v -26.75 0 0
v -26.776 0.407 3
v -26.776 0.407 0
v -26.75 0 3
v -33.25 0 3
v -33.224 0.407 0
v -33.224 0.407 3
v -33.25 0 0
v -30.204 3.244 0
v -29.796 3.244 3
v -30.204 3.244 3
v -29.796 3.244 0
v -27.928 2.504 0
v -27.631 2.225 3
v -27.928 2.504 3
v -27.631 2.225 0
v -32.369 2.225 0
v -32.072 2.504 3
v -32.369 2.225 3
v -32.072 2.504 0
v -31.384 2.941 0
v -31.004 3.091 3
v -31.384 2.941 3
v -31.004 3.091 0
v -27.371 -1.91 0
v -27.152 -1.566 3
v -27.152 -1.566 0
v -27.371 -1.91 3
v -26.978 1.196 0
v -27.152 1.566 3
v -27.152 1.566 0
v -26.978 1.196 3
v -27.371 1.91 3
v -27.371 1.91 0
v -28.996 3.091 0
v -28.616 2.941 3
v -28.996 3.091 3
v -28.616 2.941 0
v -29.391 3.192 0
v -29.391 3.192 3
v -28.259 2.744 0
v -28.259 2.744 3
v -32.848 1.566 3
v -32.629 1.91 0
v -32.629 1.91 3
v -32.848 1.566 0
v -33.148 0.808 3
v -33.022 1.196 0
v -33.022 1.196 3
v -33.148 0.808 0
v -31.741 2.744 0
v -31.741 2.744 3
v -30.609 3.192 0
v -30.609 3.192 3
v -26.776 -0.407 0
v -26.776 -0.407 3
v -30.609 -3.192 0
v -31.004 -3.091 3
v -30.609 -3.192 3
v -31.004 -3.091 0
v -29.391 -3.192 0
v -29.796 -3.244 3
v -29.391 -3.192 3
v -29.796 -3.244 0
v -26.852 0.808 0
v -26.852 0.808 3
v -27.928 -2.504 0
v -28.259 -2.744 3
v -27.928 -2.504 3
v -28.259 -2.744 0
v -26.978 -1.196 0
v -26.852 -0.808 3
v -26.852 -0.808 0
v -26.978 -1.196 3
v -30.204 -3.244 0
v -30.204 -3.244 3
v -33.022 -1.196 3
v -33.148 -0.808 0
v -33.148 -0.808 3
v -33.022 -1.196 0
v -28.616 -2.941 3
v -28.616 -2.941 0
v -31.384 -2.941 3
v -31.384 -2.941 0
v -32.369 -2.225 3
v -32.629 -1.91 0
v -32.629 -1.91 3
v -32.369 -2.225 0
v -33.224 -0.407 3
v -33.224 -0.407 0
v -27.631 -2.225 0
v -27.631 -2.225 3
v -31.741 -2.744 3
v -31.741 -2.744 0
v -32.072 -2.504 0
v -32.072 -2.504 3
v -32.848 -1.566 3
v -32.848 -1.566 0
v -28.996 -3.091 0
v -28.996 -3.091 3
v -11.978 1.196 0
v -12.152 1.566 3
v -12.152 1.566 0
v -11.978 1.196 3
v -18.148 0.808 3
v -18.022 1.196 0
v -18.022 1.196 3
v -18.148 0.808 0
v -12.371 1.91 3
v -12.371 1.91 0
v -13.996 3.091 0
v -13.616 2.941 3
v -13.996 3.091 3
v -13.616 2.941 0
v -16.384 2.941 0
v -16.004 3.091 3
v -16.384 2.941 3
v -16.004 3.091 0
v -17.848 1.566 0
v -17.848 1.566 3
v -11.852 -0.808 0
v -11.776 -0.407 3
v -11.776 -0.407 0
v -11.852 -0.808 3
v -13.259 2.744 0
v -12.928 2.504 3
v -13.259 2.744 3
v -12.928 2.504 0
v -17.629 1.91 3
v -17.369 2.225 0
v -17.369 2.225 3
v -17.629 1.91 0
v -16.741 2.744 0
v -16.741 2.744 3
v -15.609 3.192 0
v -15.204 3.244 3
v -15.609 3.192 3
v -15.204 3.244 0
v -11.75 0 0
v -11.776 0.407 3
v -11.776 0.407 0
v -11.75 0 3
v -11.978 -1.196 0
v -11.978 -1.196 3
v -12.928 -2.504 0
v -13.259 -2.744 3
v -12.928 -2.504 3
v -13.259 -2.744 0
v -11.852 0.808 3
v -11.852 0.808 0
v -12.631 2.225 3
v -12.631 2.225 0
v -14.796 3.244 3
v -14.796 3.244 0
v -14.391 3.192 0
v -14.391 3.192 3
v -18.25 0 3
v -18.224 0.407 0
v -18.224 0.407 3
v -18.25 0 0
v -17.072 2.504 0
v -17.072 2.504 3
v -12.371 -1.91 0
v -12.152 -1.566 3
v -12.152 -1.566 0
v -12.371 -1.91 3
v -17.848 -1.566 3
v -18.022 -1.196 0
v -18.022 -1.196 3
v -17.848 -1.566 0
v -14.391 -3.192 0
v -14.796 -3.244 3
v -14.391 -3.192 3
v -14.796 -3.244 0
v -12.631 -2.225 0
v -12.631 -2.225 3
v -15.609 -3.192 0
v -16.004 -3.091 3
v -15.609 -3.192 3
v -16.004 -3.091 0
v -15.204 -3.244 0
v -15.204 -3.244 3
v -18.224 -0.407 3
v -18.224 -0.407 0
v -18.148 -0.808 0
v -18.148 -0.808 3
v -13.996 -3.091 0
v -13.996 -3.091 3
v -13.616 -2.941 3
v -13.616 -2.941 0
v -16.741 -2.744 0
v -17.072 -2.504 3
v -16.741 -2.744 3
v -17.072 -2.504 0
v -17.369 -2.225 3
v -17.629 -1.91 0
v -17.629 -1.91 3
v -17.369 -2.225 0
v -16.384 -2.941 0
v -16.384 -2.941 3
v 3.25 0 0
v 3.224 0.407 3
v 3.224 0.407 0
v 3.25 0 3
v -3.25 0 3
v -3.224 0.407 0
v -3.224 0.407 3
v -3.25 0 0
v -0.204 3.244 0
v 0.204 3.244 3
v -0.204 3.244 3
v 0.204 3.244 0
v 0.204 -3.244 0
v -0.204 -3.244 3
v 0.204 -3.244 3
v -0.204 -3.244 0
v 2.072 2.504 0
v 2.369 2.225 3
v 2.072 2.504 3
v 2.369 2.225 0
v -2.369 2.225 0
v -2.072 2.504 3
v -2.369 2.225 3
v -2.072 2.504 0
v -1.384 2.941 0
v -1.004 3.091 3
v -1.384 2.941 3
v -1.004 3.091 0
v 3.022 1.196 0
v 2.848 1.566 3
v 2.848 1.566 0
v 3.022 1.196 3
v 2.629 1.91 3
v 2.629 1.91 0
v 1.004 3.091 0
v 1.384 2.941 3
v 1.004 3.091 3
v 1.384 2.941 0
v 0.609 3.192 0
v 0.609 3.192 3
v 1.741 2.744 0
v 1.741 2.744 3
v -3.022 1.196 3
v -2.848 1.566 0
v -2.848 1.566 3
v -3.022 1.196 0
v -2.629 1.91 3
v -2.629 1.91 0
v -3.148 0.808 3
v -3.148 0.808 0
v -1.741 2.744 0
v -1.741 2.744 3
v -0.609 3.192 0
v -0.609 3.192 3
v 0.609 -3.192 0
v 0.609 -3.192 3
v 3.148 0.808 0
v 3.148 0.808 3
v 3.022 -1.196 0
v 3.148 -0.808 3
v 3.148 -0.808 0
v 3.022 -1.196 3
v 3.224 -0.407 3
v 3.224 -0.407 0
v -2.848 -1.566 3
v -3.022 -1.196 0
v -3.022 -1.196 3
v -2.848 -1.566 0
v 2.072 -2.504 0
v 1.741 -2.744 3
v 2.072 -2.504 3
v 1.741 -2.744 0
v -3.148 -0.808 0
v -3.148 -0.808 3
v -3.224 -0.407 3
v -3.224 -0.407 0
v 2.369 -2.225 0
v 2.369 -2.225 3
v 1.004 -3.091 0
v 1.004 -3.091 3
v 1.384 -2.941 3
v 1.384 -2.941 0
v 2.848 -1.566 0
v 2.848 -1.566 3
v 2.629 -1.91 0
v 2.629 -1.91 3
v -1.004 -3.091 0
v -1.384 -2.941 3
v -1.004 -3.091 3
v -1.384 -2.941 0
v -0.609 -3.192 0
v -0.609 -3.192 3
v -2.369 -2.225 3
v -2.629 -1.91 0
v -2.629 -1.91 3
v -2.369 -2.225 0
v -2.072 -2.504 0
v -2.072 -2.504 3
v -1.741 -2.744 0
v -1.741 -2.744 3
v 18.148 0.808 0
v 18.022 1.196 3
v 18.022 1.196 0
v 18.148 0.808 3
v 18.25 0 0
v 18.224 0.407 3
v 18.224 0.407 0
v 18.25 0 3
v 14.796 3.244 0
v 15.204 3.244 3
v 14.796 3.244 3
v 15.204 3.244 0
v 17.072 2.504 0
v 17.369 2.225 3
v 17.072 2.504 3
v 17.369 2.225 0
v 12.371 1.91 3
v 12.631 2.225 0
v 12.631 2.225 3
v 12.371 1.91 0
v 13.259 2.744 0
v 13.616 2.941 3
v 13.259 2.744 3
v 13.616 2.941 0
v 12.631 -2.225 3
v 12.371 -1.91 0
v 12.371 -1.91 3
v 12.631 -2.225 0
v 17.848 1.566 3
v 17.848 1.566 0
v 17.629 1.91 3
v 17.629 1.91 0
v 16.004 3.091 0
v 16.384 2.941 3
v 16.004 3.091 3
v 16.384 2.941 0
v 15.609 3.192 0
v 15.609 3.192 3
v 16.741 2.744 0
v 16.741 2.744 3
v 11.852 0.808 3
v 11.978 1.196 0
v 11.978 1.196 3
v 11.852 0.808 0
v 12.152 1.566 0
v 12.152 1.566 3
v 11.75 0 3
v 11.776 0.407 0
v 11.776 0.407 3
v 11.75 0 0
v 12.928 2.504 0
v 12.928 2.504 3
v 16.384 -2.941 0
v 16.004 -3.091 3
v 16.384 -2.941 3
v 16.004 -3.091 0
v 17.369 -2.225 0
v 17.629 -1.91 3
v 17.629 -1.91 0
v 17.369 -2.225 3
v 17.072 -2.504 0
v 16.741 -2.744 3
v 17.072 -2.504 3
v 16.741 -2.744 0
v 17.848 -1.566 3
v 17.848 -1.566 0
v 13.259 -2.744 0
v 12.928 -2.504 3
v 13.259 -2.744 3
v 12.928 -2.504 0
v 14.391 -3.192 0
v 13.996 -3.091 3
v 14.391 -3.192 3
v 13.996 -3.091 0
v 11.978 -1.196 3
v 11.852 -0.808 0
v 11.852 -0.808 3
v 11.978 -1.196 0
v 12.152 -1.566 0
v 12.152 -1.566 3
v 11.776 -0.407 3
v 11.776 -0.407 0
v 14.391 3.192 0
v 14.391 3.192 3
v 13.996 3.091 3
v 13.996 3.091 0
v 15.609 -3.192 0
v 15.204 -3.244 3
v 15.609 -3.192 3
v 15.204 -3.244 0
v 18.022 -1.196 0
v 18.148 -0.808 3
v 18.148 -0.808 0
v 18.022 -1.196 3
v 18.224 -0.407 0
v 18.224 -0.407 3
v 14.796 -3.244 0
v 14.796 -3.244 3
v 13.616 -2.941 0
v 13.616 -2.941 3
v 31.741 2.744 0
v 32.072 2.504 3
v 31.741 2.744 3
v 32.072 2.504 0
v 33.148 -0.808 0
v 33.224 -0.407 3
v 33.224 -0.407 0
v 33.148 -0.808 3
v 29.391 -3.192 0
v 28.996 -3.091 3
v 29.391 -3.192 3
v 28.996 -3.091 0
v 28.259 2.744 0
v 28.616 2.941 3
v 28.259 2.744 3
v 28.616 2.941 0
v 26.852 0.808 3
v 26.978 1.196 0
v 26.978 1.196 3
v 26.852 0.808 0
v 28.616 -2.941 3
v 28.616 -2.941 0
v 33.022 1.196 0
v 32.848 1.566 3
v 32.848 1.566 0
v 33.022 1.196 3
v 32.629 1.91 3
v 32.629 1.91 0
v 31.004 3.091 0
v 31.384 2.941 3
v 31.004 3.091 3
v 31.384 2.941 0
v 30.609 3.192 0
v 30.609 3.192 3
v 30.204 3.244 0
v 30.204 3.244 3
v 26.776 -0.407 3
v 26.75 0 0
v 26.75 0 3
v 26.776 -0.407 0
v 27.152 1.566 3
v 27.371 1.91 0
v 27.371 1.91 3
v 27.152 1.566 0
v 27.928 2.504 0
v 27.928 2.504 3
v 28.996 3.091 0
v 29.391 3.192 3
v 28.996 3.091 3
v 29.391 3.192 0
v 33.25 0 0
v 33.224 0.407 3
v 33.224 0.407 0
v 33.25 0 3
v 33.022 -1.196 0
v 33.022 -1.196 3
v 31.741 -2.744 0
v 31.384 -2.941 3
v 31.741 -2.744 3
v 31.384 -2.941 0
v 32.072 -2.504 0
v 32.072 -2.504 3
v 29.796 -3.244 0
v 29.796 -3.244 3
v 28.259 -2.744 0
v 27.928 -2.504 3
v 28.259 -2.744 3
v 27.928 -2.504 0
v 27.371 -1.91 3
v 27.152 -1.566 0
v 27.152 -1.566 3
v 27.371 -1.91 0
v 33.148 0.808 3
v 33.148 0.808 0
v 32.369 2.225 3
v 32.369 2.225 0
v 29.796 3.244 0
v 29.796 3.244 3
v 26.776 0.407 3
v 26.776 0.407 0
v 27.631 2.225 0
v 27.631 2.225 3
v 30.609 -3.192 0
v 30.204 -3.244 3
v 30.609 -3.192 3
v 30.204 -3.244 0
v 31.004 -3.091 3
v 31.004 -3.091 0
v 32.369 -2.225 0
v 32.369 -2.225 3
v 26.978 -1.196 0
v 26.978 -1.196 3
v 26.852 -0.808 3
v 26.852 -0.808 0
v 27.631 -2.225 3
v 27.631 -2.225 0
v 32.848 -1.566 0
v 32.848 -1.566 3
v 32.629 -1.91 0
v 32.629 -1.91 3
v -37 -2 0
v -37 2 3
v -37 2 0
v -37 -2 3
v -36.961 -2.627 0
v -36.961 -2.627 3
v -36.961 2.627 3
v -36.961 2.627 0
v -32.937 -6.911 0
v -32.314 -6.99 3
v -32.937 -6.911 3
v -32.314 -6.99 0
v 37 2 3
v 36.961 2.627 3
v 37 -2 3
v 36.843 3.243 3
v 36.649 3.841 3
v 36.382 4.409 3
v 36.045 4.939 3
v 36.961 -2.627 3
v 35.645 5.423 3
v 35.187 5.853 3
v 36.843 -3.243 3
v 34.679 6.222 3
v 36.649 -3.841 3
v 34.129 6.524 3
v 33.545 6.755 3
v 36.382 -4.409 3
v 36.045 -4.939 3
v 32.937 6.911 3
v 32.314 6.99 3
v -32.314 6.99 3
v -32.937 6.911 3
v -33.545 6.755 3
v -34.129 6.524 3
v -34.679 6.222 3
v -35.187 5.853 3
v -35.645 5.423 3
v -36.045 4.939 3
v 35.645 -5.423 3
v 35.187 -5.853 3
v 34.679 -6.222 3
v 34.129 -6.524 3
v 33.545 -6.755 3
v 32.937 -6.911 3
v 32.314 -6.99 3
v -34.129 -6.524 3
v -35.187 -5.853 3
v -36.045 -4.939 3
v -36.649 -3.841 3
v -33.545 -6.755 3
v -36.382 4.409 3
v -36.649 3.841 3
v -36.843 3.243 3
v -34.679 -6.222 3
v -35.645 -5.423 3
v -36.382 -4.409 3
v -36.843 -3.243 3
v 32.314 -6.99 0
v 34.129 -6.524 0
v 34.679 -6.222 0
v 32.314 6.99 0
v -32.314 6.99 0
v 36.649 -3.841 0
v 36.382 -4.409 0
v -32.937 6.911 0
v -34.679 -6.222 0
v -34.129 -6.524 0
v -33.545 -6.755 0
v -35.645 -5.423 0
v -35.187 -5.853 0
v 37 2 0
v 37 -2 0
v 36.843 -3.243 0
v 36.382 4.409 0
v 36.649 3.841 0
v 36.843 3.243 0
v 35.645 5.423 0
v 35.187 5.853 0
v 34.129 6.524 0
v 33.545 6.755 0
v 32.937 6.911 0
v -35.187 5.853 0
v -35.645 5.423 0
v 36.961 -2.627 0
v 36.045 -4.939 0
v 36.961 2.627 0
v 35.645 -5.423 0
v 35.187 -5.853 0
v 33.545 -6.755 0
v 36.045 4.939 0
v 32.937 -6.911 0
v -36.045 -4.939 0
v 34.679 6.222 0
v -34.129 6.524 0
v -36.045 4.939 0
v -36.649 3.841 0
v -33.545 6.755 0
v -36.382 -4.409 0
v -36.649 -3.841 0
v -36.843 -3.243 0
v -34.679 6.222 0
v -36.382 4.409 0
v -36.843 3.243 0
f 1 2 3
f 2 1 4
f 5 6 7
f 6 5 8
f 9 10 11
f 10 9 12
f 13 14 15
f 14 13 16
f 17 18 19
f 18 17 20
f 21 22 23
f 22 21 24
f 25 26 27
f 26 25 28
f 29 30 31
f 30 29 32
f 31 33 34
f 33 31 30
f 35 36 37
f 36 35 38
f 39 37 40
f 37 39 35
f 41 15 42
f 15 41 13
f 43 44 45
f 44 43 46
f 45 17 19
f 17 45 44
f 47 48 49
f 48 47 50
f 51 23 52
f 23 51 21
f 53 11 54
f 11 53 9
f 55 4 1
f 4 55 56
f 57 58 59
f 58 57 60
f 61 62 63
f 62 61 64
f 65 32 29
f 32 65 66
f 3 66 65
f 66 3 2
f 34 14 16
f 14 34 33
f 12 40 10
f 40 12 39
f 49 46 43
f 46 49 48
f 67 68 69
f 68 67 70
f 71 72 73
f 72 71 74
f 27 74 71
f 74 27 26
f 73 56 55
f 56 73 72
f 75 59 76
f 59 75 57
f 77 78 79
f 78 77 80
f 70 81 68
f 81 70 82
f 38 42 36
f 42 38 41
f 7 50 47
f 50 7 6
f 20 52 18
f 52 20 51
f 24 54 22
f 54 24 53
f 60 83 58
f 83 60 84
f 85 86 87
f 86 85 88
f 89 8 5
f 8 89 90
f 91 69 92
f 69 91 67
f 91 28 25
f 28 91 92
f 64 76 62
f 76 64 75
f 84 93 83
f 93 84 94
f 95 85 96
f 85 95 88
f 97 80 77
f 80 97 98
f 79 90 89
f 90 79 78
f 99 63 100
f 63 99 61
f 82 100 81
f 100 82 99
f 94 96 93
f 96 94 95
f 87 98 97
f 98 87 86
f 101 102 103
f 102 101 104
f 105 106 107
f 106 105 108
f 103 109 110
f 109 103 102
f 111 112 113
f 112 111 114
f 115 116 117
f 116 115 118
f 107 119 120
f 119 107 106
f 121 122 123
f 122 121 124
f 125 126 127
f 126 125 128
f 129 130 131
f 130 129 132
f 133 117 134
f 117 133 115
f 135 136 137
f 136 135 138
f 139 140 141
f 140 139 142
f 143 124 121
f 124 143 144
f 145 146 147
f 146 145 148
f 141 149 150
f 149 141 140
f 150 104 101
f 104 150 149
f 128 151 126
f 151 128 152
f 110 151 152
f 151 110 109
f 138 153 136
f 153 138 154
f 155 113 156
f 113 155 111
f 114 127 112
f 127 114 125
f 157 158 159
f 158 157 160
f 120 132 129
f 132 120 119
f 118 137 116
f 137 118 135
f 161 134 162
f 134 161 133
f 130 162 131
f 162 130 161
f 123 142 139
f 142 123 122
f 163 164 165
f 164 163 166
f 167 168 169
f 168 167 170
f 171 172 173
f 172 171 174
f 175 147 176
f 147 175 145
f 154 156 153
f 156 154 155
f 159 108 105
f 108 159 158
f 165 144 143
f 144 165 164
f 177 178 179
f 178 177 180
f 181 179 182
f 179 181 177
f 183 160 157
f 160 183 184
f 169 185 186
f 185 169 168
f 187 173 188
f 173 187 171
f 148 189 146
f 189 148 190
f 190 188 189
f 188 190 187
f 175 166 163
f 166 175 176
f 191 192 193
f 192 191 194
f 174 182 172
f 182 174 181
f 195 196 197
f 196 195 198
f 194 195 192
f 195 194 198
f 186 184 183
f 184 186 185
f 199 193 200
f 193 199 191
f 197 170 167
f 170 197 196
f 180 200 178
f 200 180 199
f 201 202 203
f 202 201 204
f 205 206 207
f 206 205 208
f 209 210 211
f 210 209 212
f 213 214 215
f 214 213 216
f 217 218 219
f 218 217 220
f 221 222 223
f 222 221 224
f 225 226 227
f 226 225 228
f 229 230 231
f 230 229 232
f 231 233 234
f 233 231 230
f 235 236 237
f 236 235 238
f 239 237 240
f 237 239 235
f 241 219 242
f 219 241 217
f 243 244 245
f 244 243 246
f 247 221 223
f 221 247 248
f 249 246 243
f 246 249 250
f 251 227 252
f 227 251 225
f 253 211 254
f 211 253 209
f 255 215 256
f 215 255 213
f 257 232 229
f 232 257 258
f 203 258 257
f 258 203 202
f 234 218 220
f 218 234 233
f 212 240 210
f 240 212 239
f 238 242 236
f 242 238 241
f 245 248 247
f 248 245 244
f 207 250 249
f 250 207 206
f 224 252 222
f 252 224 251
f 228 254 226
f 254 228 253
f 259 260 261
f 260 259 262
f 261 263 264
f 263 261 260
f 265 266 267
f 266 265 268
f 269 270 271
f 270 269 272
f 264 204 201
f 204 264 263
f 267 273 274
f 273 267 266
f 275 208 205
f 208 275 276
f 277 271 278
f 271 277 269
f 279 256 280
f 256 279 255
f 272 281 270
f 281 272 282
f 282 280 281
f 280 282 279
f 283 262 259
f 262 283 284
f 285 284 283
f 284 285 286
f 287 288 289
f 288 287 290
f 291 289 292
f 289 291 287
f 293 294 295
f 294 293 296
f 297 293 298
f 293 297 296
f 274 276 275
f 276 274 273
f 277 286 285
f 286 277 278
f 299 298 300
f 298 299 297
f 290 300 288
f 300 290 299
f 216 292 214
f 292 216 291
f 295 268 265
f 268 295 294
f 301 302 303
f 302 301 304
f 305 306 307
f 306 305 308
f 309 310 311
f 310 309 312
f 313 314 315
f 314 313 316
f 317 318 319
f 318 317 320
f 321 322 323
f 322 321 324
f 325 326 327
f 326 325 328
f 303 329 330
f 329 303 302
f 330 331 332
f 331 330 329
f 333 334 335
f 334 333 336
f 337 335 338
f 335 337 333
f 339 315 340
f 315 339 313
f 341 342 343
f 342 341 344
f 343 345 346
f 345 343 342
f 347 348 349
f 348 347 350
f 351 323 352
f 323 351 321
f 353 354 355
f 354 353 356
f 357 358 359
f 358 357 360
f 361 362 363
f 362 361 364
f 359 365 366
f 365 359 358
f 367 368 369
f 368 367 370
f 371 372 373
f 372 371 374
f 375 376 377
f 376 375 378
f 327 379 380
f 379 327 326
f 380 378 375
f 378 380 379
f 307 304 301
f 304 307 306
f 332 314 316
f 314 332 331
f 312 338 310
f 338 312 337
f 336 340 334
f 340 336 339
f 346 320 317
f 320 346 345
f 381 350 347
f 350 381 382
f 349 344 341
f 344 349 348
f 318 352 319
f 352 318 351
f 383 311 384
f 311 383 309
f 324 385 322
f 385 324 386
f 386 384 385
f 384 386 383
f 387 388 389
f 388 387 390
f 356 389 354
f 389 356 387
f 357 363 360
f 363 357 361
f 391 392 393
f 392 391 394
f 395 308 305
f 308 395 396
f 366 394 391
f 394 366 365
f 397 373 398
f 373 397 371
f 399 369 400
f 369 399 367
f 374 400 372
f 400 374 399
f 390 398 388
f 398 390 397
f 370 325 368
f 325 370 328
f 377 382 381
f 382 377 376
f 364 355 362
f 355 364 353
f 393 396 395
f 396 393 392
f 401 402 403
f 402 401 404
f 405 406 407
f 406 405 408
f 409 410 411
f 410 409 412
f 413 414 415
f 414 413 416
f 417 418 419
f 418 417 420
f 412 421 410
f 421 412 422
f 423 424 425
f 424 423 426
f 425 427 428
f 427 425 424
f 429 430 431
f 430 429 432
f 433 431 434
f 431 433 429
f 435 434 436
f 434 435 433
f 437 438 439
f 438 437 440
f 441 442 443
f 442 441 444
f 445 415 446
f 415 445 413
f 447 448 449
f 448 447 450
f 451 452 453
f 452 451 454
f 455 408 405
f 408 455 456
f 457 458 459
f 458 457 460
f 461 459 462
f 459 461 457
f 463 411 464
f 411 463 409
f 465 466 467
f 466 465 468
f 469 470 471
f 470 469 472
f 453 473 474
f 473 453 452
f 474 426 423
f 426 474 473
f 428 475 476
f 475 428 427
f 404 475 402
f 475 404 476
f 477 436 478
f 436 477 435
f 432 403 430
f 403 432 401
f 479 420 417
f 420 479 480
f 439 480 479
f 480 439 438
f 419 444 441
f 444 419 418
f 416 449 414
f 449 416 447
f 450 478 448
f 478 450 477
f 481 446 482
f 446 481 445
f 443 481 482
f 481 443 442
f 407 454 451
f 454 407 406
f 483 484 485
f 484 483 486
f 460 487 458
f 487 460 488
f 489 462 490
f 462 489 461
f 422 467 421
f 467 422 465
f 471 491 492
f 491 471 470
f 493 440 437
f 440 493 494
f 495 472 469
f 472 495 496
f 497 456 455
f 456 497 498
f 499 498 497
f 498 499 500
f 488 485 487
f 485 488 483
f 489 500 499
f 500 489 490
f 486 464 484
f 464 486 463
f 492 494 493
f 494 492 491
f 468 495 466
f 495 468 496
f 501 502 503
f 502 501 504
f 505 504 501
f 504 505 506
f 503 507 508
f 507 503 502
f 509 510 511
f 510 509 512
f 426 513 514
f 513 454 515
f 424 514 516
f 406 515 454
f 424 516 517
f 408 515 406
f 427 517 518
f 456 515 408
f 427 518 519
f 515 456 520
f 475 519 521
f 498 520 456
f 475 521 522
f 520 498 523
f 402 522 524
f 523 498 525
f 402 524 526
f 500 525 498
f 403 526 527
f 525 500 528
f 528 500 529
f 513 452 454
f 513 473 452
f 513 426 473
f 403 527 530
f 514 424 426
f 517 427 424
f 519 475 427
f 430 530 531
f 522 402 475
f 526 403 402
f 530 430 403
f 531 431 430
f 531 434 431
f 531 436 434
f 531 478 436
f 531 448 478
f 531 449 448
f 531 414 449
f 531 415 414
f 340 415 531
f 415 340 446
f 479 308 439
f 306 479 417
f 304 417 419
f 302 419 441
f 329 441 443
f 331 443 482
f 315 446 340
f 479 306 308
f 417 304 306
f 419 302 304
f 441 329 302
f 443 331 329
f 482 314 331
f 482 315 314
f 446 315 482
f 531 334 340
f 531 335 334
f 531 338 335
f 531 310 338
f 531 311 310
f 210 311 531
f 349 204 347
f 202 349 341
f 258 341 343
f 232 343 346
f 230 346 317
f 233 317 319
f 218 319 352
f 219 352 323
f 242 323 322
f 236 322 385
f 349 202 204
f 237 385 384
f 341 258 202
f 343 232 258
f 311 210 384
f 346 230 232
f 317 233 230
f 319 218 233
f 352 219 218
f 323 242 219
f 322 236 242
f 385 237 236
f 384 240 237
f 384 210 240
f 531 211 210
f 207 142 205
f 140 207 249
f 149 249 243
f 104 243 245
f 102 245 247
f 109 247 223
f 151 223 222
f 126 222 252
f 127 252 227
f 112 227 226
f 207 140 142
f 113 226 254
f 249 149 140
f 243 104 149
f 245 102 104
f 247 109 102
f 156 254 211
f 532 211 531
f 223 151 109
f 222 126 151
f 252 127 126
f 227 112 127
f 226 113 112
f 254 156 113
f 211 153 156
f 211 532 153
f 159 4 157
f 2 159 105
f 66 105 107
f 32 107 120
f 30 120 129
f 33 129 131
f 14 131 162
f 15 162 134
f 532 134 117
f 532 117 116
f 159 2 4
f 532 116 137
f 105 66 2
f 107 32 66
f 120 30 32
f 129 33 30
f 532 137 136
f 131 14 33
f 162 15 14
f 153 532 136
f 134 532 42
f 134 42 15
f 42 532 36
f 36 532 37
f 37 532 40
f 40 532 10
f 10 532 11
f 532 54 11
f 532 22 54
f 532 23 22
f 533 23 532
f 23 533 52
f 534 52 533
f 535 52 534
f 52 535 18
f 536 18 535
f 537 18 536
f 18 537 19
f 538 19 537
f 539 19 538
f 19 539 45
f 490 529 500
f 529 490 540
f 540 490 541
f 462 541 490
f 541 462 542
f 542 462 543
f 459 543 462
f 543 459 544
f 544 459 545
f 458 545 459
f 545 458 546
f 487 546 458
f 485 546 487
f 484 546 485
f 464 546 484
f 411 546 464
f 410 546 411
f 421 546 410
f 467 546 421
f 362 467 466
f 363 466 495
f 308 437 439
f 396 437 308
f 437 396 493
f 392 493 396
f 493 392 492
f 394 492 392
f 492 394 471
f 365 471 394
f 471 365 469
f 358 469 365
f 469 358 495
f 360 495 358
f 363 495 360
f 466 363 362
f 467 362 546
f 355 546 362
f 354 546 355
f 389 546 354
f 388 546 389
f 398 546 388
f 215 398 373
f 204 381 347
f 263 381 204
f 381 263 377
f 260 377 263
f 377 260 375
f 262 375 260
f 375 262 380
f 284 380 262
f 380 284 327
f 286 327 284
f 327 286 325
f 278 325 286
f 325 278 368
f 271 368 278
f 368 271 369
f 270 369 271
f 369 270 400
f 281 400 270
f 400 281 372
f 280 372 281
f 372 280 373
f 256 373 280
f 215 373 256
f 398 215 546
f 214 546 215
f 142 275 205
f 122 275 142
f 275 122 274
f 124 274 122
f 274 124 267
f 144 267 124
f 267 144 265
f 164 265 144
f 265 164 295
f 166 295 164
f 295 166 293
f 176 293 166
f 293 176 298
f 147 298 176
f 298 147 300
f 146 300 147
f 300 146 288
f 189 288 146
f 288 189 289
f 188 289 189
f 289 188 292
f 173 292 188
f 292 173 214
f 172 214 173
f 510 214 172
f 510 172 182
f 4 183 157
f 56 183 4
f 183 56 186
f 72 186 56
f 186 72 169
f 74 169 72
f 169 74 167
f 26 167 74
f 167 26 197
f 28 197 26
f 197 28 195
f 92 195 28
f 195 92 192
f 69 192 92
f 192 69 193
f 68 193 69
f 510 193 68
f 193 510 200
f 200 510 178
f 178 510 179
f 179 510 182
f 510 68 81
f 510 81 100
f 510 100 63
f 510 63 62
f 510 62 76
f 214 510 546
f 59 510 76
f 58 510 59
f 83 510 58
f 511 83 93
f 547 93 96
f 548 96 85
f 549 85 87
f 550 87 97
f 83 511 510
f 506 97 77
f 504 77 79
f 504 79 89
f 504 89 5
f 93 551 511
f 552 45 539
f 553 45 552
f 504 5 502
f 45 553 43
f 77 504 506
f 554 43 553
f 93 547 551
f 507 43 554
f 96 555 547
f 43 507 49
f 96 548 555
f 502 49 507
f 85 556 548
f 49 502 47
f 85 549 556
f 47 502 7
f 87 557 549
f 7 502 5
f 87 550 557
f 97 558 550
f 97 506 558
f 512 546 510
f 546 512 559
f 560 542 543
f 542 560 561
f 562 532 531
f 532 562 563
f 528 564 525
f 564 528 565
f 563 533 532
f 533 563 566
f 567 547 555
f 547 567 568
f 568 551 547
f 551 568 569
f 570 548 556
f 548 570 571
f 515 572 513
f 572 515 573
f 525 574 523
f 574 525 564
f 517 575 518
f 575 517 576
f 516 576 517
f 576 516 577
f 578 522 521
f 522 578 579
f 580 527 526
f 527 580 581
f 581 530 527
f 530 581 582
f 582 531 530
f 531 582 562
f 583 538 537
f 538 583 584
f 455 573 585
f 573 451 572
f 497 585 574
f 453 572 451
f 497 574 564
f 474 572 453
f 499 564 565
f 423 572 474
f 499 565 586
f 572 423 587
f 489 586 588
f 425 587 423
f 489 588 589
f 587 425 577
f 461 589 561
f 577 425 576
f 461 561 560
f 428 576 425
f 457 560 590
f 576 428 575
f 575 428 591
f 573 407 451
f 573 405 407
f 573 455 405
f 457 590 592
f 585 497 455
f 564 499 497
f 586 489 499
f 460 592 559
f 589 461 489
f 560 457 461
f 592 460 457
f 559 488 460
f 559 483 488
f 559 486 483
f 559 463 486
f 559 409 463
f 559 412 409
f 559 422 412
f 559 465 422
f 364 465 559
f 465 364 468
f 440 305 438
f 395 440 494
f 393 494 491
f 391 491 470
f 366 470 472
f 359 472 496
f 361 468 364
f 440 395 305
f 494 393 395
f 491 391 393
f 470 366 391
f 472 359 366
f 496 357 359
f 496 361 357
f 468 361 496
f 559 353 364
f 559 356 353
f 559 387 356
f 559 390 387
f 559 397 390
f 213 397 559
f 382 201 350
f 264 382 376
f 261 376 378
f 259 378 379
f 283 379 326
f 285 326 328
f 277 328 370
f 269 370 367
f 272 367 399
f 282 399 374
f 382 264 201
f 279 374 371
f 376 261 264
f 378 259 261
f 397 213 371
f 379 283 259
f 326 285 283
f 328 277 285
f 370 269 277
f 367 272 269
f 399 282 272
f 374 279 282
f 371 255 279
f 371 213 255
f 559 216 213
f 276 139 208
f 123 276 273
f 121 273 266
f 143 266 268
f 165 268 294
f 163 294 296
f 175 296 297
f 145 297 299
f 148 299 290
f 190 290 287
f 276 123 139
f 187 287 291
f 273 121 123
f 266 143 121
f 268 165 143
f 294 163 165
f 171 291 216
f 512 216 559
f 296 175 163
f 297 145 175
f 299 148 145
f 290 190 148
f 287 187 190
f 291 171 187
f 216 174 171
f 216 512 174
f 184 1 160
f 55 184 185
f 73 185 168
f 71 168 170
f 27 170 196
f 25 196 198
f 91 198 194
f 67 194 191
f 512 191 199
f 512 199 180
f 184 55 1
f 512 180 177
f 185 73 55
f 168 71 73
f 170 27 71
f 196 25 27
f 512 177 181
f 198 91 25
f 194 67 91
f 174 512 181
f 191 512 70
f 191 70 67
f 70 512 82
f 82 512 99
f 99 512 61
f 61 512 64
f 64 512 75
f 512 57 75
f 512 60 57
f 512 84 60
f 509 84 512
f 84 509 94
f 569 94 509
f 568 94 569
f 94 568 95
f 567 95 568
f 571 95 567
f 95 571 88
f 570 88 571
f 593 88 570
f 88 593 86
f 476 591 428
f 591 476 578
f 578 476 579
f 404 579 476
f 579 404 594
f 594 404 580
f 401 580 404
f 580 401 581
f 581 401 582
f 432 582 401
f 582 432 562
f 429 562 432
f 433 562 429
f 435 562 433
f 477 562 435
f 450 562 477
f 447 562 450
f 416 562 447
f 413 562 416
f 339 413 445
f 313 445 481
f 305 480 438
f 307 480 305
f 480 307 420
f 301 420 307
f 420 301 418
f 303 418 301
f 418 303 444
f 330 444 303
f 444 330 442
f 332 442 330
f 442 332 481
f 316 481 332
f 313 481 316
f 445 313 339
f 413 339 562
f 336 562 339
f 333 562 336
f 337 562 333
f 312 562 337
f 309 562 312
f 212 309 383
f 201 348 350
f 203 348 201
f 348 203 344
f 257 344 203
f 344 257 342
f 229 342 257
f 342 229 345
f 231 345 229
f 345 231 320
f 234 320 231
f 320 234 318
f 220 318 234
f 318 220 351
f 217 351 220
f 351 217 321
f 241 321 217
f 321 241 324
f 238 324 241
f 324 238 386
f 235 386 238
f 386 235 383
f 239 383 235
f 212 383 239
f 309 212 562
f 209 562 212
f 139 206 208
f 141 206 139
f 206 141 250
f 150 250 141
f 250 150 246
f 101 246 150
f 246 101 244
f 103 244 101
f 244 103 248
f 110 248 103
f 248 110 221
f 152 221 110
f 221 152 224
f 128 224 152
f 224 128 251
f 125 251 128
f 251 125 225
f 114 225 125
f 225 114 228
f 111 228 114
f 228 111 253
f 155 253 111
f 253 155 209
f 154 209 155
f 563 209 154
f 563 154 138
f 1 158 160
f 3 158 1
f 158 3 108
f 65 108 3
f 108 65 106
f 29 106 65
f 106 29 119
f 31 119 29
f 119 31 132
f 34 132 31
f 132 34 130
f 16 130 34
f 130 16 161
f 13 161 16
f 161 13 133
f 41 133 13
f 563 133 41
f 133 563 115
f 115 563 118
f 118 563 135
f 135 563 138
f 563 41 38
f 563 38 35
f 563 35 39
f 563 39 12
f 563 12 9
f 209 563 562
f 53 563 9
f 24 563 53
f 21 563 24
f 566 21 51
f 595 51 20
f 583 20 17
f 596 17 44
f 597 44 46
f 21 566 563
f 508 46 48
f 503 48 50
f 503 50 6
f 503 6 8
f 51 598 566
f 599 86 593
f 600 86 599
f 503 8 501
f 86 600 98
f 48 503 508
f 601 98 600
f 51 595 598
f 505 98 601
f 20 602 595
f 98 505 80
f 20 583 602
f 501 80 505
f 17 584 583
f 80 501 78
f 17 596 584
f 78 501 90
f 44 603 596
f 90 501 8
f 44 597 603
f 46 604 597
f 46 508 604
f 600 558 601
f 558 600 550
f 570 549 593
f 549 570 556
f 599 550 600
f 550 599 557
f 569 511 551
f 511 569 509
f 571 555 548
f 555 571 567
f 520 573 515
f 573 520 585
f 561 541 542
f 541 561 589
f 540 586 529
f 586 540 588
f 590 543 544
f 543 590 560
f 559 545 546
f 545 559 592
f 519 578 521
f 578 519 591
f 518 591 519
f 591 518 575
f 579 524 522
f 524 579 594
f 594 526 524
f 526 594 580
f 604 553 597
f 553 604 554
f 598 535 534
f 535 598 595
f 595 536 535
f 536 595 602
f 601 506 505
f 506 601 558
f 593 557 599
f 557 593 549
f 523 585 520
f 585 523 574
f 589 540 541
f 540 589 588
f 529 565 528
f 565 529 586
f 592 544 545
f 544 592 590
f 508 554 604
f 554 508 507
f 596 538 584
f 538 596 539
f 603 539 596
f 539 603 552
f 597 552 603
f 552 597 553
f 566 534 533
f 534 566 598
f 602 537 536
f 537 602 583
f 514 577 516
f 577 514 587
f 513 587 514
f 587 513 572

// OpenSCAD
$fn = 50;


difference() {
	union() {
		translate(v = [0, 0, 0]) {
			rotate(a = [0, 0, 0]) {
				hull() {
					translate(v = [-32.0000000000, 2.0000000000, 0]) {
						rotate(a = [0, 0, 0]) {
							translate(v = [0, 0, 0]) {
								rotate(a = [0, 0, 0]) {
									cylinder(h = 3, r = 5);
								}
							}
						}
					}
					translate(v = [32.0000000000, 2.0000000000, 0]) {
						rotate(a = [0, 0, 0]) {
							translate(v = [0, 0, 0]) {
								rotate(a = [0, 0, 0]) {
									cylinder(h = 3, r = 5);
								}
							}
						}
					}
					translate(v = [-32.0000000000, -2.0000000000, 0]) {
						rotate(a = [0, 0, 0]) {
							translate(v = [0, 0, 0]) {
								rotate(a = [0, 0, 0]) {
									cylinder(h = 3, r = 5);
								}
							}
						}
					}
					translate(v = [32.0000000000, -2.0000000000, 0]) {
						rotate(a = [0, 0, 0]) {
							translate(v = [0, 0, 0]) {
								rotate(a = [0, 0, 0]) {
									cylinder(h = 3, r = 5);
								}
							}
						}
					}
				}
			}
		}
	}
	union() {
		translate(v = [-30.0000000000, 0.0000000000, 0]) {
			rotate(a = [0, 0, 0]) {
				translate(v = [0, 0, -50]) {
					rotate(a = [0, 0, 0]) {
						cylinder(h = 100, r = 3.2500000000);
					}
				}
			}
		}
		translate(v = [-15.0000000000, 0.0000000000, 0]) {
			rotate(a = [0, 0, 0]) {
				translate(v = [0, 0, -50]) {
					rotate(a = [0, 0, 0]) {
						cylinder(h = 100, r = 3.2500000000);
					}
				}
			}
		}
		translate(v = [0.0000000000, 0.0000000000, 0]) {
			rotate(a = [0, 0, 0]) {
				translate(v = [0, 0, -50]) {
					rotate(a = [0, 0, 0]) {
						cylinder(h = 100, r = 3.2500000000);
					}
				}
			}
		}
		translate(v = [15.0000000000, 0.0000000000, 0]) {
			rotate(a = [0, 0, 0]) {
				translate(v = [0, 0, -50]) {
					rotate(a = [0, 0, 0]) {
						cylinder(h = 100, r = 3.2500000000);
					}
				}
			}
		}
		translate(v = [30.0000000000, 0.0000000000, 0]) {
			rotate(a = [0, 0, 0]) {
				translate(v = [0, 0, -50]) {
					rotate(a = [0, 0, 0]) {
						cylinder(h = 100, r = 3.2500000000);
					}
				}
			}
		}
	}
}
